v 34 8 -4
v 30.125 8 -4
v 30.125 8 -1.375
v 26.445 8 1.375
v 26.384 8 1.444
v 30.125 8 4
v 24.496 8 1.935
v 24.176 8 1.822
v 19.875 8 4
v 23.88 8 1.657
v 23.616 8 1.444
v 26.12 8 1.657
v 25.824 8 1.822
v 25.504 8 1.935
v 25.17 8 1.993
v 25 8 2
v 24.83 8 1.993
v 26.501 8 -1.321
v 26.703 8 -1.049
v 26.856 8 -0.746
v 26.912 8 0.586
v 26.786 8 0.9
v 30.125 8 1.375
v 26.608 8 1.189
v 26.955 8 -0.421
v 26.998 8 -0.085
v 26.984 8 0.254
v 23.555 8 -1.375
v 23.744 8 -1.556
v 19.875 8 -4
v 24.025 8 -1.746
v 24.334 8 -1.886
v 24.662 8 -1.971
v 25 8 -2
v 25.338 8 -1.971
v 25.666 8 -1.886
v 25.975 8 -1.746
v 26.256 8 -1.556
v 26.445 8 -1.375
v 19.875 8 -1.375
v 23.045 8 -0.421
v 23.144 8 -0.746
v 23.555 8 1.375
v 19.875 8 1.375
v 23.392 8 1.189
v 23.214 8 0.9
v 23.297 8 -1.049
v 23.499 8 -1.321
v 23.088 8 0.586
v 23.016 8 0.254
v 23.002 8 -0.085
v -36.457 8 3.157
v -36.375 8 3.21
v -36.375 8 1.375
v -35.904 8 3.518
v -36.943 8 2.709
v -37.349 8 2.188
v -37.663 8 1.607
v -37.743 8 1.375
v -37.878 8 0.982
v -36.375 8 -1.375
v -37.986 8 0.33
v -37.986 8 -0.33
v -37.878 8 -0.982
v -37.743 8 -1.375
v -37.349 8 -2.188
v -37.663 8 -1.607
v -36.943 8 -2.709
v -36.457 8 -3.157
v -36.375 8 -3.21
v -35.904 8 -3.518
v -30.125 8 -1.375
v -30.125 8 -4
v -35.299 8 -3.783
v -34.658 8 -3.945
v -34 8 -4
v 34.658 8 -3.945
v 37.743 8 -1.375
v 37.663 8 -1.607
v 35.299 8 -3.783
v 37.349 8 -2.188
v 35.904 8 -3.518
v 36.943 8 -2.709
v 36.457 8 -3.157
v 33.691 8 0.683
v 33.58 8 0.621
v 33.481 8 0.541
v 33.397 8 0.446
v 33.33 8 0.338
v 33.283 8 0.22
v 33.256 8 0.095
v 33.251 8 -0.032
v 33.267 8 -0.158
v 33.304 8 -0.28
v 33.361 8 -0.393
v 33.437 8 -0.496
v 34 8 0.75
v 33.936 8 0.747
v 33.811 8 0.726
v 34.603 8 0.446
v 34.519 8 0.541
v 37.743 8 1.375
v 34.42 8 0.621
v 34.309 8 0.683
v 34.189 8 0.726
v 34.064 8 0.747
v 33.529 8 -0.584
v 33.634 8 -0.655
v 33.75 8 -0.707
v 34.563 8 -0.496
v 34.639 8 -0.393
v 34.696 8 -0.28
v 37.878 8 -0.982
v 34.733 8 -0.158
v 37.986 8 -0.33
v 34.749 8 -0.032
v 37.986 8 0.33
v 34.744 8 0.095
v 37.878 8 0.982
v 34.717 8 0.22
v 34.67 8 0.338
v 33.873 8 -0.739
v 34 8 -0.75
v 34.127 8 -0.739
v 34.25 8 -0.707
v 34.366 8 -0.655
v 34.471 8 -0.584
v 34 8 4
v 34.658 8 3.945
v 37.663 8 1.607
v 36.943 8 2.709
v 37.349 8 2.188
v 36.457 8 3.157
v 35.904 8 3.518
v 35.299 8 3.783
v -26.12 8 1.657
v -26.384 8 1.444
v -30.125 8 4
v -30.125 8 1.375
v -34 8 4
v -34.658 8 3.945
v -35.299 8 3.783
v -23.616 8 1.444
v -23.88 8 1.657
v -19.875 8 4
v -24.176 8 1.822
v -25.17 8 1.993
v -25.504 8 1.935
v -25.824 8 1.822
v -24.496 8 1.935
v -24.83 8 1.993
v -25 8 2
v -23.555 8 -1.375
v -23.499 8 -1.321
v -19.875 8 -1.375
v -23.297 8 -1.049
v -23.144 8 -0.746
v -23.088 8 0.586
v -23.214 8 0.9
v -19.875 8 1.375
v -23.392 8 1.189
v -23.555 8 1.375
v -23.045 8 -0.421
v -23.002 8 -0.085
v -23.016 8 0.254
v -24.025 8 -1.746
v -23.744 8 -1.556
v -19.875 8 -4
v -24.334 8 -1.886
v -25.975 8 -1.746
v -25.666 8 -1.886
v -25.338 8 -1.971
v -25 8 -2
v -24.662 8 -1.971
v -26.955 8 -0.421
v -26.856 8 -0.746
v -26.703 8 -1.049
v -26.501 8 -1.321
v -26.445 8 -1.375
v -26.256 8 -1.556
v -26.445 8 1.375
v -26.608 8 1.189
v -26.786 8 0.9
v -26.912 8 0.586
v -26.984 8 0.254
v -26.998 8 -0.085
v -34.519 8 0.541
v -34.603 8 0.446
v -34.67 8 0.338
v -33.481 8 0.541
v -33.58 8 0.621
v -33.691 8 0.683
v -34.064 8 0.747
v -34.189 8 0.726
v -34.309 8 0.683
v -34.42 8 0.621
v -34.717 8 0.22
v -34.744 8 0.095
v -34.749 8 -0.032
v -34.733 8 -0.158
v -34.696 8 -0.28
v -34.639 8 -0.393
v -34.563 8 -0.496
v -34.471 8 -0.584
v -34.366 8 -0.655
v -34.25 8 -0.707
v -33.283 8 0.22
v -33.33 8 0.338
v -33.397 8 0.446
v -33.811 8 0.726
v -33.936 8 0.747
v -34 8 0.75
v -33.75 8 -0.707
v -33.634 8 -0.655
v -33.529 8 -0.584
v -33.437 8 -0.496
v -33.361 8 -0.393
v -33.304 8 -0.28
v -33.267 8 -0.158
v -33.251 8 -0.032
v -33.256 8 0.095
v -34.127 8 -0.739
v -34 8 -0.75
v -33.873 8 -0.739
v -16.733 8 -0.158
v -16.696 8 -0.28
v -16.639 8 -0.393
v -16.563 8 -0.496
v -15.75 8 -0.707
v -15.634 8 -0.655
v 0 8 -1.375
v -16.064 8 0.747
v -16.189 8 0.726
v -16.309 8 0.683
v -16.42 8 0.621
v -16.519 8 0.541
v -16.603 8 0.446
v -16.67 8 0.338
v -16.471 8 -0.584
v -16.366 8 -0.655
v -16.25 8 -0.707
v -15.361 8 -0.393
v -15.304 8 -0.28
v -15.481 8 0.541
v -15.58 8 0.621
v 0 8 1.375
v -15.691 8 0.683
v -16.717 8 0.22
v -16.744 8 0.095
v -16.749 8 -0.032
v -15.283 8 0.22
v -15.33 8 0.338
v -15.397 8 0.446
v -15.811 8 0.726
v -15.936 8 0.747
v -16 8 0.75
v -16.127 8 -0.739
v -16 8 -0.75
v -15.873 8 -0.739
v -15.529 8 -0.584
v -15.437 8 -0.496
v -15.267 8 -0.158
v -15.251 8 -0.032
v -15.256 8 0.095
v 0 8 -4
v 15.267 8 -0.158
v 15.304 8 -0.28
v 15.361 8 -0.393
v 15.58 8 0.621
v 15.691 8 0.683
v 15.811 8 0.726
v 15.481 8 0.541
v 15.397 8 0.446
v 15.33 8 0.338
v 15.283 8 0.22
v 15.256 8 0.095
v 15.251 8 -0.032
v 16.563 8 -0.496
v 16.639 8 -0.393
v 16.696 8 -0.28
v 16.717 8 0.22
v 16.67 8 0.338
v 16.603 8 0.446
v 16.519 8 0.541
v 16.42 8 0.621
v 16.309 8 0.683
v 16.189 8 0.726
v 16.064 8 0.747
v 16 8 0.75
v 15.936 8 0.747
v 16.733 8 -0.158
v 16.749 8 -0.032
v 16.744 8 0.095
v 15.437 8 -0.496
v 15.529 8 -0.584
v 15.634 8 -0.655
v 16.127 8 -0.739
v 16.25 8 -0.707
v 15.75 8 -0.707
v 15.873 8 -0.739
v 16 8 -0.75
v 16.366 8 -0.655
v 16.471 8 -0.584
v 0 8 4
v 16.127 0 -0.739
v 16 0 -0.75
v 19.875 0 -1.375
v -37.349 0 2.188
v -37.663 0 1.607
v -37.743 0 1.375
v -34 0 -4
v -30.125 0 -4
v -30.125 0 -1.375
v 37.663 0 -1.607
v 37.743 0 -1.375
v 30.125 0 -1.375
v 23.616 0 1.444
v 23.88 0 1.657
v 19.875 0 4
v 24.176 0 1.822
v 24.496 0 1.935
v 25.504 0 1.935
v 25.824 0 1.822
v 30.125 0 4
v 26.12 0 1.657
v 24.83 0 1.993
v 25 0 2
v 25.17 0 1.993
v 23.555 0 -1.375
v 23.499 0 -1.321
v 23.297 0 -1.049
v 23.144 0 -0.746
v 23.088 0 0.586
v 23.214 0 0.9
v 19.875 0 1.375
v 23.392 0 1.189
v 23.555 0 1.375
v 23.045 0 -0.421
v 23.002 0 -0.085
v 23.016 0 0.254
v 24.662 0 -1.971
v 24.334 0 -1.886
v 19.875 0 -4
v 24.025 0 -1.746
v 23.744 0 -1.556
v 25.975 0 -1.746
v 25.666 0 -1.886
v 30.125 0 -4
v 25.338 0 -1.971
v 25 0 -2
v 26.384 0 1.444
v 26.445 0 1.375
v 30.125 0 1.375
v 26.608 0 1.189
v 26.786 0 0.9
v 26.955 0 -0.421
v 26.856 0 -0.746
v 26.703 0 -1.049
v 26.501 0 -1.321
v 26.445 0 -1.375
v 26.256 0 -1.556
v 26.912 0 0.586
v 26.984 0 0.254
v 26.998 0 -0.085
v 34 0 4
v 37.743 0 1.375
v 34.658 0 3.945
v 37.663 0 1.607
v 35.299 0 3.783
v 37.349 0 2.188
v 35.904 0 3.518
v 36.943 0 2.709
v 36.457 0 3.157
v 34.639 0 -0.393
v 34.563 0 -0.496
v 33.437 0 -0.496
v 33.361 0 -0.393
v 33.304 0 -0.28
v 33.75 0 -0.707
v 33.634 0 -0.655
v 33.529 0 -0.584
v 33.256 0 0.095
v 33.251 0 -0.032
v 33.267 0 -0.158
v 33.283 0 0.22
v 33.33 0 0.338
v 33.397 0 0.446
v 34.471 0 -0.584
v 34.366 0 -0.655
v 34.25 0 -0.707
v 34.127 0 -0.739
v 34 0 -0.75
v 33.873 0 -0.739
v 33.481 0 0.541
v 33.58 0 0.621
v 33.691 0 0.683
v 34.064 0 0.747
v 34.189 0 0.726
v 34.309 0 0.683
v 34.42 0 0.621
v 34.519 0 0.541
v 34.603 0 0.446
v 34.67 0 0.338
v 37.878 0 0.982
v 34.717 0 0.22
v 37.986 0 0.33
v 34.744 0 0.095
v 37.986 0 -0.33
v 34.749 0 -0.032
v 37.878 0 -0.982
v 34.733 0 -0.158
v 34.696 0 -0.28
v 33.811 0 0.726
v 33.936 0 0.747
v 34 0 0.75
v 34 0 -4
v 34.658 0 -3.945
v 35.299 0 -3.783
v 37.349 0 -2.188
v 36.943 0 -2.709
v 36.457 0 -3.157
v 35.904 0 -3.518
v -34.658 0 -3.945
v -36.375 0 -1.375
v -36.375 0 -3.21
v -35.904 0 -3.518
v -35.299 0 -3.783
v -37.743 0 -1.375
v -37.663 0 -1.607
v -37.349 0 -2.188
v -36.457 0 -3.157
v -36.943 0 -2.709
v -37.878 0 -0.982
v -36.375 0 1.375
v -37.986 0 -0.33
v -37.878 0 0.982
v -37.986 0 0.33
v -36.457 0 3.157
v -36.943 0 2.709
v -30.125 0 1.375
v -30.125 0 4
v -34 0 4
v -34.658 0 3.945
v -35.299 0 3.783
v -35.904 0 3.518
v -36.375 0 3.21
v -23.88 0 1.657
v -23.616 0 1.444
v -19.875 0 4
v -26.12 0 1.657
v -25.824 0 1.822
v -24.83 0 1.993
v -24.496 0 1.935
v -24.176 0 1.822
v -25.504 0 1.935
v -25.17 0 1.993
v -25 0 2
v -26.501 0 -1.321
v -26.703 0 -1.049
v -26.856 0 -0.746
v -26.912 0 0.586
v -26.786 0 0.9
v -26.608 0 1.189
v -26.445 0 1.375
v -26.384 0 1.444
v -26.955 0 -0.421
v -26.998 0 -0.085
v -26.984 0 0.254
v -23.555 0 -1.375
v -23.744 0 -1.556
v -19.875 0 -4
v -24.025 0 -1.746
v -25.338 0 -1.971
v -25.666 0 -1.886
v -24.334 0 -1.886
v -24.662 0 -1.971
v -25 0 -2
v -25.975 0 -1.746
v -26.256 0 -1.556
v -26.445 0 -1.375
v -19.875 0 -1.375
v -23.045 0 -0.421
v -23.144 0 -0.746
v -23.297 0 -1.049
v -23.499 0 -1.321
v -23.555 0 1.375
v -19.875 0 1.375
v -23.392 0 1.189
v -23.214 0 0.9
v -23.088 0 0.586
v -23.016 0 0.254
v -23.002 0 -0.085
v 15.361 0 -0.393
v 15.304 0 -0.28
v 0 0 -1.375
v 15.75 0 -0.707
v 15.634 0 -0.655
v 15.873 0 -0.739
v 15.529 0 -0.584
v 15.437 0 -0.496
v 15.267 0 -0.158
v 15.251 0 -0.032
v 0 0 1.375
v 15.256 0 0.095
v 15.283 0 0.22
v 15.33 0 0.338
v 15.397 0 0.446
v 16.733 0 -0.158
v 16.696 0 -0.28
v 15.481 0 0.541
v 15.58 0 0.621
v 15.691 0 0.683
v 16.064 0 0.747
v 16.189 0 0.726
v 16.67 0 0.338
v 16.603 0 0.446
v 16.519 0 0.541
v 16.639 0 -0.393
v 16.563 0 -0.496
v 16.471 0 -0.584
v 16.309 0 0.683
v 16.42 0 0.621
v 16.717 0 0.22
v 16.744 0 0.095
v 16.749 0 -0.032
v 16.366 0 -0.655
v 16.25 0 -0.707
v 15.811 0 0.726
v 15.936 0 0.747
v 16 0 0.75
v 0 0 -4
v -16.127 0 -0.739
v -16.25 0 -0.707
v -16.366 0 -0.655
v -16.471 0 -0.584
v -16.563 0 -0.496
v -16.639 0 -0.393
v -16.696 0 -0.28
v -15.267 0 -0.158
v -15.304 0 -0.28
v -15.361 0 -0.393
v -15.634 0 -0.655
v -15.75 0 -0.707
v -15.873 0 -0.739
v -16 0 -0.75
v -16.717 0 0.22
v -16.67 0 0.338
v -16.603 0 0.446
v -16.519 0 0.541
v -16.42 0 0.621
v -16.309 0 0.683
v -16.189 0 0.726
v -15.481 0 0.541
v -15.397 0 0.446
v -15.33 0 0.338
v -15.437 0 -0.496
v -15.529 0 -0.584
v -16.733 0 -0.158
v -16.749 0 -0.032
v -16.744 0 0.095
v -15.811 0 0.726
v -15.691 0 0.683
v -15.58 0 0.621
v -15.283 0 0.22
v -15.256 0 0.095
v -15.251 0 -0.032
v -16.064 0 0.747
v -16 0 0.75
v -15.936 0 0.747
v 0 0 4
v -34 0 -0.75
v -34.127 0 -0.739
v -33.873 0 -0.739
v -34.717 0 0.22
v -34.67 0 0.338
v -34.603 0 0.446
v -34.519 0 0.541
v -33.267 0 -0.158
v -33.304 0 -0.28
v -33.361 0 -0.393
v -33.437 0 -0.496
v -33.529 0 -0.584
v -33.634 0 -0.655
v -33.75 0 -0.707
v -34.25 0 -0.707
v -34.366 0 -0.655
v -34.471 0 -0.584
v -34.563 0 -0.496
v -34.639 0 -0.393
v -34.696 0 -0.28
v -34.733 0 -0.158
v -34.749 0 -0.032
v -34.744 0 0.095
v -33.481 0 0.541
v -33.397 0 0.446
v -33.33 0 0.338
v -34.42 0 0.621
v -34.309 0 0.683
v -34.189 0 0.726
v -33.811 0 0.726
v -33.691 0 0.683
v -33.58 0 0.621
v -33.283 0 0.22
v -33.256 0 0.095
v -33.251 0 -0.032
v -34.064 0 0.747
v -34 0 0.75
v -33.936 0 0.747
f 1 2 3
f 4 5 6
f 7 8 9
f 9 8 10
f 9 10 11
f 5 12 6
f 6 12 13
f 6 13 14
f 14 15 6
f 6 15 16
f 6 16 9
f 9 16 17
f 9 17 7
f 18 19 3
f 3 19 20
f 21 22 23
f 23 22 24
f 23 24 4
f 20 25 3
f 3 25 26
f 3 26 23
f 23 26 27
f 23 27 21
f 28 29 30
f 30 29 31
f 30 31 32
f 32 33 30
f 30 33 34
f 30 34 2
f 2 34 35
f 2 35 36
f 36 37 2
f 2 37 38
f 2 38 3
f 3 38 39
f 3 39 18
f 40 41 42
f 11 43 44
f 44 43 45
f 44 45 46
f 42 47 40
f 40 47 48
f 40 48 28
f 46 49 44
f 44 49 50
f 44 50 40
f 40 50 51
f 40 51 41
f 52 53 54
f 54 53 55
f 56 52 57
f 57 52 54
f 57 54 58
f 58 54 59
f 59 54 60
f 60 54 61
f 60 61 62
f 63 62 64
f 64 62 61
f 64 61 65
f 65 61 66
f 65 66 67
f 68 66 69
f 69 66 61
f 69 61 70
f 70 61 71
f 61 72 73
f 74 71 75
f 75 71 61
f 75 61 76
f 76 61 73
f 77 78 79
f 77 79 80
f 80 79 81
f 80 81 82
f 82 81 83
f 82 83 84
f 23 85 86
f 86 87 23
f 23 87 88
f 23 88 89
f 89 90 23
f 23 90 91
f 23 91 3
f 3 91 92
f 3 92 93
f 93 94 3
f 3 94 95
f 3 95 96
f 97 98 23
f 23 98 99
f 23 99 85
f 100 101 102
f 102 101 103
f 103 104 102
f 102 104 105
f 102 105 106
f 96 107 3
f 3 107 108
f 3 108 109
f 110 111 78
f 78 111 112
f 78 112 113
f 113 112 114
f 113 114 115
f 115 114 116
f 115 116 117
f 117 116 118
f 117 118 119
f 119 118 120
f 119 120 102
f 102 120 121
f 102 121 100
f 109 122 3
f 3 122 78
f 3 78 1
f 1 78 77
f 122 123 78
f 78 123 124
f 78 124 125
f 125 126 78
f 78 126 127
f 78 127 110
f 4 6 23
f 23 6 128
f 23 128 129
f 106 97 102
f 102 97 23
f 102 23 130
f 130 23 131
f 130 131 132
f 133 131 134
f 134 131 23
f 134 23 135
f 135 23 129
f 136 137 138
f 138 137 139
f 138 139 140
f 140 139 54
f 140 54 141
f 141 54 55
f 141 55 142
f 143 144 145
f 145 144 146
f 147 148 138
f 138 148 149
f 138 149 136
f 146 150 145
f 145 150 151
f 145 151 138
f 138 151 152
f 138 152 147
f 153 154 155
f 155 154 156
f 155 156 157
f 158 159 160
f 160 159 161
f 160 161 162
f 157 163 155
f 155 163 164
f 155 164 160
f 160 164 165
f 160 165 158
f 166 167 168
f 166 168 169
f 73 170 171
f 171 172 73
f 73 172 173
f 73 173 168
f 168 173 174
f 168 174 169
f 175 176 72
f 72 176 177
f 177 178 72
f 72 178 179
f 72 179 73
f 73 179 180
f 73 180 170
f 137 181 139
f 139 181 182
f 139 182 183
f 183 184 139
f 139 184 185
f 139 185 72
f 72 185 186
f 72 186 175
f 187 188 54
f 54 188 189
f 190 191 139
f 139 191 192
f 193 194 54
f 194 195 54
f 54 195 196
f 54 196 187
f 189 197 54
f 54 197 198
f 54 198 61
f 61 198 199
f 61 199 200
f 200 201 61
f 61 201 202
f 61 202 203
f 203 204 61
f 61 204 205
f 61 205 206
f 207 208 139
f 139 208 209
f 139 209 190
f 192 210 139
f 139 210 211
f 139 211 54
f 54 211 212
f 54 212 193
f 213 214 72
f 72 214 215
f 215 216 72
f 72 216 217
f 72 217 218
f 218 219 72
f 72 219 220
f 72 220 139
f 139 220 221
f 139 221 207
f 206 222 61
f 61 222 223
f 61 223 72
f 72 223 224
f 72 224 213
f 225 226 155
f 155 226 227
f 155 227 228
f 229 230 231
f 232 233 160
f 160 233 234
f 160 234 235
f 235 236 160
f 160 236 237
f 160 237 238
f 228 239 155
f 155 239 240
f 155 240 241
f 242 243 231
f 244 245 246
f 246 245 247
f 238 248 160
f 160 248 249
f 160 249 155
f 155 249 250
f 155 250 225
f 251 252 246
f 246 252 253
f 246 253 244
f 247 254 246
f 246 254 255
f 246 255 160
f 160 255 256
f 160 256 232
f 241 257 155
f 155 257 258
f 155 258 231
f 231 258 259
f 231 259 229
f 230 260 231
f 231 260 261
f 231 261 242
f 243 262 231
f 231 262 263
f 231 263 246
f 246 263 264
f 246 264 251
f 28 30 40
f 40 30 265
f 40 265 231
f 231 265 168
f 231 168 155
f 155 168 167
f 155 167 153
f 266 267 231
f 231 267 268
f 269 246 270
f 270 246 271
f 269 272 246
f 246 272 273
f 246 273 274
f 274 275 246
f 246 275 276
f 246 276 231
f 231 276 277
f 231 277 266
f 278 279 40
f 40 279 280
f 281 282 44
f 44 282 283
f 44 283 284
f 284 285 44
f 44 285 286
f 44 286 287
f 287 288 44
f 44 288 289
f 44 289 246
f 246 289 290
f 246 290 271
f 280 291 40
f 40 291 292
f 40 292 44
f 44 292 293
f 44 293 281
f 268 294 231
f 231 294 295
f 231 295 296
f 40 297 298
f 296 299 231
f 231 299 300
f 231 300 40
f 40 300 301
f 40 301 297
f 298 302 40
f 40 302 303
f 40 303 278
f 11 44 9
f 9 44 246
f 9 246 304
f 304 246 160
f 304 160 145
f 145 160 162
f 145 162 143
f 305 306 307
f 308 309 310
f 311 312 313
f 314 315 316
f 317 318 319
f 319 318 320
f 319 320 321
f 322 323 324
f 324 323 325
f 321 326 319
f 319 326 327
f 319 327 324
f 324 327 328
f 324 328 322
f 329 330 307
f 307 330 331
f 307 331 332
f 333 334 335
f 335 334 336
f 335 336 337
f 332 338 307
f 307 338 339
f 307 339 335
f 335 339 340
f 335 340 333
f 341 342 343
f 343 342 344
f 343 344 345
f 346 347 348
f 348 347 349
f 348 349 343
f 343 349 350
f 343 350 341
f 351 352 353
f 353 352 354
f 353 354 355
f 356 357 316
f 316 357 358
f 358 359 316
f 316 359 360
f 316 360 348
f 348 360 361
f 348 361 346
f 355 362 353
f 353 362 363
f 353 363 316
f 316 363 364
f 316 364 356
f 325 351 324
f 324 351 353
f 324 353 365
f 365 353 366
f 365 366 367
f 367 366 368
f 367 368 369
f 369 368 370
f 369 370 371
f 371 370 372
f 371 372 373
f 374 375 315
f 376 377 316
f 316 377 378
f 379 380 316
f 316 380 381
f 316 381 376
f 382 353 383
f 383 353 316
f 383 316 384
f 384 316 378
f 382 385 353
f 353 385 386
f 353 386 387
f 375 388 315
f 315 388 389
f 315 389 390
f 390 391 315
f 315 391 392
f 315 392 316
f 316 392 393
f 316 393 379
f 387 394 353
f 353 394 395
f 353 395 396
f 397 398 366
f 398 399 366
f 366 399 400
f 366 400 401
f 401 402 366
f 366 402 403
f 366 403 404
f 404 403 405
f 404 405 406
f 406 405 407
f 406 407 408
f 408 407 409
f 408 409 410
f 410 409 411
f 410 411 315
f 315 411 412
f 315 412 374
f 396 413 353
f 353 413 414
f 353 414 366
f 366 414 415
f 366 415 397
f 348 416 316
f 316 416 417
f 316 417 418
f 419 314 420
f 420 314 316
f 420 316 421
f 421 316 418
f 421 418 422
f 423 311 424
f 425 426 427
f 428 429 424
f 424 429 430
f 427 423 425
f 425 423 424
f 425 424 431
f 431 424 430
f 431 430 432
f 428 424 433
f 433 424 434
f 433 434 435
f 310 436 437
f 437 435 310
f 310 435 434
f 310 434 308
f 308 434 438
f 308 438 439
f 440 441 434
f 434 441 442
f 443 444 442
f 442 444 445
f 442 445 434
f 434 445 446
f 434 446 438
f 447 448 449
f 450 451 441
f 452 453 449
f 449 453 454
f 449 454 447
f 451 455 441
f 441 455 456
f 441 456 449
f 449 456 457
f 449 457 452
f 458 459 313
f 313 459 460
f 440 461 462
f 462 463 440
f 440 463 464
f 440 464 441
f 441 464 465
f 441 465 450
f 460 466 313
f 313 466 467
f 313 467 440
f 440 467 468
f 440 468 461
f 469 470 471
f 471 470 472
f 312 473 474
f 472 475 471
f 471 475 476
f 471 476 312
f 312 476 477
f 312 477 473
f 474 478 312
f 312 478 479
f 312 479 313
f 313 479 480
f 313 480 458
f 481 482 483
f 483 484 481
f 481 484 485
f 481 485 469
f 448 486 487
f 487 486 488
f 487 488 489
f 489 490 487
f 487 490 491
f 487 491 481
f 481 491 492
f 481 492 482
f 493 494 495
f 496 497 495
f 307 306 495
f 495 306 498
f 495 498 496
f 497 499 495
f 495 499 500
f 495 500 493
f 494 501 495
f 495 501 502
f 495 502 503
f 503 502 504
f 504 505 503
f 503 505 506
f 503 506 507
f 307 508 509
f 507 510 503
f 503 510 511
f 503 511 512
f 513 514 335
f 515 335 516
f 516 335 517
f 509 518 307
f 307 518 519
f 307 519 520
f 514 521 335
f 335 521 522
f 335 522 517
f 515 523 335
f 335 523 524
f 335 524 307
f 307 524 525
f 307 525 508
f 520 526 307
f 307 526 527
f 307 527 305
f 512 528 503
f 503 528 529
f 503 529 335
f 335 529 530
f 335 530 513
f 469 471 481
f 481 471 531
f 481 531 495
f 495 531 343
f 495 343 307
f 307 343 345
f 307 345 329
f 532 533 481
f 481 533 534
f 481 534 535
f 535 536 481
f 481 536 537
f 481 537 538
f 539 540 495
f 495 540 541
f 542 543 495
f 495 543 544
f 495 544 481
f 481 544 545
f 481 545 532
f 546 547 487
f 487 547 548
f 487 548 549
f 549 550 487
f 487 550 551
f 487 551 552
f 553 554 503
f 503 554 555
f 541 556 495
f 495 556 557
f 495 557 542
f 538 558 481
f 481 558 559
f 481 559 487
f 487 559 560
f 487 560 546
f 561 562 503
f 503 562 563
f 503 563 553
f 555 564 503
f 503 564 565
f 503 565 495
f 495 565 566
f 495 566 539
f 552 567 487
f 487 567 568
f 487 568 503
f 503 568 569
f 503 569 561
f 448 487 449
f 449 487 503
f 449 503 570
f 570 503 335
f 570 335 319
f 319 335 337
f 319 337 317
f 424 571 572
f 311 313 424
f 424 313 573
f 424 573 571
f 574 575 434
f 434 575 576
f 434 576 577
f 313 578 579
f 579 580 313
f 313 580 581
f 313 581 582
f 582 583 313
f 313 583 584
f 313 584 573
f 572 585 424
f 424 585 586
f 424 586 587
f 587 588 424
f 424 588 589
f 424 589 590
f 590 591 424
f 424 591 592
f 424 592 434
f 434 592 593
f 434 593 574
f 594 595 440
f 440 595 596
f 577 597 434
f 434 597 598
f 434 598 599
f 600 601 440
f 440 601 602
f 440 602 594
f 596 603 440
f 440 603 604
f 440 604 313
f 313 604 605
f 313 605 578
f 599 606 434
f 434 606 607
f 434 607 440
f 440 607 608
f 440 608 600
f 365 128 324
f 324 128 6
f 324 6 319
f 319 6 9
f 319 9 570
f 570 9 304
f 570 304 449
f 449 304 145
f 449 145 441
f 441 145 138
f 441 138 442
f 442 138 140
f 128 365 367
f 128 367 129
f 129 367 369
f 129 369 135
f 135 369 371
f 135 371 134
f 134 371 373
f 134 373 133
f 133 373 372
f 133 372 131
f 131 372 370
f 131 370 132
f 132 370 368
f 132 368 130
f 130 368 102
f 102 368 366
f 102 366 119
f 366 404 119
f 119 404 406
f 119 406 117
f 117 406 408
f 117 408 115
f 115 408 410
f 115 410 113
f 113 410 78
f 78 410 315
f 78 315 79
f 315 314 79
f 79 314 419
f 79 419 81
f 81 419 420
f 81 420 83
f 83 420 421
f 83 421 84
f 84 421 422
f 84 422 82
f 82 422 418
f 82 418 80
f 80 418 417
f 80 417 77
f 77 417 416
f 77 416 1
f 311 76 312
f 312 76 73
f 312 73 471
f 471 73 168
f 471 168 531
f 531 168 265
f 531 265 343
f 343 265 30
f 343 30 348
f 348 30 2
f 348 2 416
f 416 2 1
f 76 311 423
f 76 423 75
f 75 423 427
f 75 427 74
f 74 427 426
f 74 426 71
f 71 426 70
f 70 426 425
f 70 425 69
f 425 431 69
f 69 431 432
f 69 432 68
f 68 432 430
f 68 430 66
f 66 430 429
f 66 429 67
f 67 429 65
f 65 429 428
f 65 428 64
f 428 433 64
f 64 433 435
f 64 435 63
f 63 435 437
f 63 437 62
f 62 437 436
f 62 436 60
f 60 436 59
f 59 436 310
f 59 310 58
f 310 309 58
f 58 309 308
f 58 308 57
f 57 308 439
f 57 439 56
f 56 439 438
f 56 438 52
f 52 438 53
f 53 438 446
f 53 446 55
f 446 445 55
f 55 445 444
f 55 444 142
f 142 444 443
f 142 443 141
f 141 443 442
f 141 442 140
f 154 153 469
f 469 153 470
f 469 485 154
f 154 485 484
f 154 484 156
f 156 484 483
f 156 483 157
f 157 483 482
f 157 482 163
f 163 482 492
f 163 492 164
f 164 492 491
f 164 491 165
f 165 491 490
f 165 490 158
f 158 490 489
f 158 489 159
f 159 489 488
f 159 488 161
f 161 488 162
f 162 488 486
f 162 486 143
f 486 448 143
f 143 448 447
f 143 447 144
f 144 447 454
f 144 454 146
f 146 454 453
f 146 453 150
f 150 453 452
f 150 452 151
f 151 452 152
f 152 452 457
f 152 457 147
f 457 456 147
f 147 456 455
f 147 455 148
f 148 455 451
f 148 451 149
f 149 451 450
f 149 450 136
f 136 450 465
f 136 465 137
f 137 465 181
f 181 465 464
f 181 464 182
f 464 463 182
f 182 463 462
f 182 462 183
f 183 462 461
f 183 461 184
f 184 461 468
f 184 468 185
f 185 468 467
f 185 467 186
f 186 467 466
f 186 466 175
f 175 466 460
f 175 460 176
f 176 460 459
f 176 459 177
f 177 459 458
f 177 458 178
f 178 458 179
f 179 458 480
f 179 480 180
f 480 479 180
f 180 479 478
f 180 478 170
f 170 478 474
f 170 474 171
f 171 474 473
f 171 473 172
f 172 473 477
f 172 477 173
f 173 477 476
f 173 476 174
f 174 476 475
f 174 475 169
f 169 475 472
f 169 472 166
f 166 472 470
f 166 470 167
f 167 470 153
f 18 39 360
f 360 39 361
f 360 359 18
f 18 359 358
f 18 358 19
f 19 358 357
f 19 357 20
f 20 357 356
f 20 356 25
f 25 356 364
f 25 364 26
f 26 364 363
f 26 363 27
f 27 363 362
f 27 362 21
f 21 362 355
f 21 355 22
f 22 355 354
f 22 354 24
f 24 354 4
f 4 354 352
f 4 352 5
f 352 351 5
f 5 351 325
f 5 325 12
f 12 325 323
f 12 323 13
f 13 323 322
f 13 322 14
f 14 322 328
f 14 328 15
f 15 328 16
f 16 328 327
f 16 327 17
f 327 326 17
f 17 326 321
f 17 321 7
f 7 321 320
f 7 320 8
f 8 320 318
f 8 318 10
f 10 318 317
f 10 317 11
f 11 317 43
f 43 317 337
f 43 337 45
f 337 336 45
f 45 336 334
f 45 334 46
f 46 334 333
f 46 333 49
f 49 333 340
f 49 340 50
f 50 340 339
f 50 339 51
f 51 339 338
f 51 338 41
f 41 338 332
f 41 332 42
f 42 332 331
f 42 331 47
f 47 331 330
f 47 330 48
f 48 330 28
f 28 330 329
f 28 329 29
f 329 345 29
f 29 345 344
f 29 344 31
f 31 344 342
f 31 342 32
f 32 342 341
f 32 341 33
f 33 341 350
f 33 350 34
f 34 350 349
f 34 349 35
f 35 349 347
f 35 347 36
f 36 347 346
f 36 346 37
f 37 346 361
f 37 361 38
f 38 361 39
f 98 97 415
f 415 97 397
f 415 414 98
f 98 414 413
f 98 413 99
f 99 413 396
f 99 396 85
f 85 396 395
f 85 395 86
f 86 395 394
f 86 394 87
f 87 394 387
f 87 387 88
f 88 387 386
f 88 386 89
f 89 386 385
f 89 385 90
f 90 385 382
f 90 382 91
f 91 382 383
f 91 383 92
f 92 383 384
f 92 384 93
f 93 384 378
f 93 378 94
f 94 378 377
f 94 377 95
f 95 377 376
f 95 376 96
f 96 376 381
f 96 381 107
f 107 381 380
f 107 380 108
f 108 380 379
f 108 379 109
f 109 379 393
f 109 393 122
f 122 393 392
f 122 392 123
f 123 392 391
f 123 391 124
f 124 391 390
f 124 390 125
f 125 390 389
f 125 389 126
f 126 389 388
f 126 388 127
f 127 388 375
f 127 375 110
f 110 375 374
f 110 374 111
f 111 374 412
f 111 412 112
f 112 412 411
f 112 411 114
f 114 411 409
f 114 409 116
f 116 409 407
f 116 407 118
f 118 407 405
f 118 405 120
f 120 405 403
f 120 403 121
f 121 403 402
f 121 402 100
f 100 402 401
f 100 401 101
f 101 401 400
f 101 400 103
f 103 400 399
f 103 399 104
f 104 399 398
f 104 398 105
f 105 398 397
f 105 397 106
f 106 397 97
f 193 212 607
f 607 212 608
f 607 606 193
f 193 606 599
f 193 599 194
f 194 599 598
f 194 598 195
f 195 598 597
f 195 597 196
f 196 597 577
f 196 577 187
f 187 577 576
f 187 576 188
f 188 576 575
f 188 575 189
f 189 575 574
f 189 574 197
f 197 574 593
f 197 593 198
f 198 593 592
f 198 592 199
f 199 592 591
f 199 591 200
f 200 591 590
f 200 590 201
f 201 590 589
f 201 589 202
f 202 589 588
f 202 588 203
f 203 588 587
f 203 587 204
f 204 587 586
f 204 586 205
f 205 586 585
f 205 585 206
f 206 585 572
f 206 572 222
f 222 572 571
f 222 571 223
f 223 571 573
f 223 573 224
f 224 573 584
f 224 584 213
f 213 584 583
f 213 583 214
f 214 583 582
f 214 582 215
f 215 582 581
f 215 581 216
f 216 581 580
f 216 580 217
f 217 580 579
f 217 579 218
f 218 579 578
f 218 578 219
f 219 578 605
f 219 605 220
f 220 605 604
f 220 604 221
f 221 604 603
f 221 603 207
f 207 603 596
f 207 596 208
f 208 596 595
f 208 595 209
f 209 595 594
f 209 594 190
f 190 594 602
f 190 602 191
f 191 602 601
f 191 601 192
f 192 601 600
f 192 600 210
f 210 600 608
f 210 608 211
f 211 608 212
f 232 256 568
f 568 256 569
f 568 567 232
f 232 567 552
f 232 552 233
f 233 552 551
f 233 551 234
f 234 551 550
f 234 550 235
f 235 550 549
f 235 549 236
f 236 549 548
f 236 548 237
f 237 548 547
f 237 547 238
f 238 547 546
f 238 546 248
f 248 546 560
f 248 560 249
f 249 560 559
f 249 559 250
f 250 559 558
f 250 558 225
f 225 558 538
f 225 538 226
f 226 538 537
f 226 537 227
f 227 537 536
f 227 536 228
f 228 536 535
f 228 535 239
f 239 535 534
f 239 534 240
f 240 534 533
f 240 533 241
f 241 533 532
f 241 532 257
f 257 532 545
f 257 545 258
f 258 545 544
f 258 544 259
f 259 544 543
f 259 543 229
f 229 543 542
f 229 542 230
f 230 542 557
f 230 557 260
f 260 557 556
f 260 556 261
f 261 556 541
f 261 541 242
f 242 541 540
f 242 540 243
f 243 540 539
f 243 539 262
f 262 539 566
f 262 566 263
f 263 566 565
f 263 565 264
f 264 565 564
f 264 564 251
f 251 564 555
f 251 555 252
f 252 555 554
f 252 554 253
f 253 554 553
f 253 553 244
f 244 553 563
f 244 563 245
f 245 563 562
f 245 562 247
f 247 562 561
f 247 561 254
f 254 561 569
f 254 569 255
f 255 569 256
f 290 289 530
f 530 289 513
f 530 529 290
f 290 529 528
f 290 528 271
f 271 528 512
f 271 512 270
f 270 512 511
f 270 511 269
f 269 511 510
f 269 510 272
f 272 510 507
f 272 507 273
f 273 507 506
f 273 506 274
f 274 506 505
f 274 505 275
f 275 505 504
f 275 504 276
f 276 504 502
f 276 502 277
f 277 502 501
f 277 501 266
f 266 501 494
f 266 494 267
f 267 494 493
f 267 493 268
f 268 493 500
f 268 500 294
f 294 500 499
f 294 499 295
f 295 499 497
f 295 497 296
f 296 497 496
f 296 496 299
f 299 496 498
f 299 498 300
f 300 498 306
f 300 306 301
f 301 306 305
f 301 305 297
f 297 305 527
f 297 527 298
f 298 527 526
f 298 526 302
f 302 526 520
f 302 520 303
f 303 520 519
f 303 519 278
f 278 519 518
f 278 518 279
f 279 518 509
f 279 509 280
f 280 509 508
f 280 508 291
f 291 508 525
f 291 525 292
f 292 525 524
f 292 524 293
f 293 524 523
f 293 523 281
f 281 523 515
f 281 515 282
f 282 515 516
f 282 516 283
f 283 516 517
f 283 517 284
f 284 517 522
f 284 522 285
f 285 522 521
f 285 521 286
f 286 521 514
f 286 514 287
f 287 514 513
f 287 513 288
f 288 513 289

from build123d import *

# Parameters (mm, degrees)
SKETCH_1_R      = 0.75
SKETCH_1_R_2    = 2
EXTRUDE_1_DEPTH = 8


with BuildPart() as part:
    # 草圖1 → 填料-伸長1 (new body)
    with BuildSketch(Plane(origin=(0, 0, 0), x_dir=(1, 0, 0), z_dir=(0, 1, 0))):
        with BuildLine():
            Line((-0.414012206, -4), (25, -4))
            Line((25, -4), (34, -4))
            ThreePointArc((34, -4), (38, 0), (34, 4))
            Line((34, 4), (25, 4))
            Line((25, 4), (-0.414012206, 4))
            Line((-0.414012206, 4), (-34, 4))
            ThreePointArc((-34, 4), (-38, 0), (-34, -4))
            Line((-34, -4), (-0.414012206, -4))
        make_face()
        with Locations(Location((34, 0, 0), (0, 0, 270))):
            Circle(SKETCH_1_R, mode=Mode.SUBTRACT)
        with Locations(Location((-34, 0, 0), (0, 0, 270))):
            Circle(SKETCH_1_R, mode=Mode.SUBTRACT)
        with Locations(Location((-25, 0, 0), (0, 0, 270))):
            Circle(SKETCH_1_R_2, mode=Mode.SUBTRACT)
        with Locations(Location((25, 0, 0), (0, 0, 270))):
            Circle(SKETCH_1_R_2, mode=Mode.SUBTRACT)
        with Locations(Location((-16, 0, 0), (0, 0, 270))):
            Circle(SKETCH_1_R, mode=Mode.SUBTRACT)
        with Locations(Location((16, 0, 0), (0, 0, 270))):
            Circle(SKETCH_1_R, mode=Mode.SUBTRACT)
    extrude(amount=EXTRUDE_1_DEPTH)


solid = part.part
